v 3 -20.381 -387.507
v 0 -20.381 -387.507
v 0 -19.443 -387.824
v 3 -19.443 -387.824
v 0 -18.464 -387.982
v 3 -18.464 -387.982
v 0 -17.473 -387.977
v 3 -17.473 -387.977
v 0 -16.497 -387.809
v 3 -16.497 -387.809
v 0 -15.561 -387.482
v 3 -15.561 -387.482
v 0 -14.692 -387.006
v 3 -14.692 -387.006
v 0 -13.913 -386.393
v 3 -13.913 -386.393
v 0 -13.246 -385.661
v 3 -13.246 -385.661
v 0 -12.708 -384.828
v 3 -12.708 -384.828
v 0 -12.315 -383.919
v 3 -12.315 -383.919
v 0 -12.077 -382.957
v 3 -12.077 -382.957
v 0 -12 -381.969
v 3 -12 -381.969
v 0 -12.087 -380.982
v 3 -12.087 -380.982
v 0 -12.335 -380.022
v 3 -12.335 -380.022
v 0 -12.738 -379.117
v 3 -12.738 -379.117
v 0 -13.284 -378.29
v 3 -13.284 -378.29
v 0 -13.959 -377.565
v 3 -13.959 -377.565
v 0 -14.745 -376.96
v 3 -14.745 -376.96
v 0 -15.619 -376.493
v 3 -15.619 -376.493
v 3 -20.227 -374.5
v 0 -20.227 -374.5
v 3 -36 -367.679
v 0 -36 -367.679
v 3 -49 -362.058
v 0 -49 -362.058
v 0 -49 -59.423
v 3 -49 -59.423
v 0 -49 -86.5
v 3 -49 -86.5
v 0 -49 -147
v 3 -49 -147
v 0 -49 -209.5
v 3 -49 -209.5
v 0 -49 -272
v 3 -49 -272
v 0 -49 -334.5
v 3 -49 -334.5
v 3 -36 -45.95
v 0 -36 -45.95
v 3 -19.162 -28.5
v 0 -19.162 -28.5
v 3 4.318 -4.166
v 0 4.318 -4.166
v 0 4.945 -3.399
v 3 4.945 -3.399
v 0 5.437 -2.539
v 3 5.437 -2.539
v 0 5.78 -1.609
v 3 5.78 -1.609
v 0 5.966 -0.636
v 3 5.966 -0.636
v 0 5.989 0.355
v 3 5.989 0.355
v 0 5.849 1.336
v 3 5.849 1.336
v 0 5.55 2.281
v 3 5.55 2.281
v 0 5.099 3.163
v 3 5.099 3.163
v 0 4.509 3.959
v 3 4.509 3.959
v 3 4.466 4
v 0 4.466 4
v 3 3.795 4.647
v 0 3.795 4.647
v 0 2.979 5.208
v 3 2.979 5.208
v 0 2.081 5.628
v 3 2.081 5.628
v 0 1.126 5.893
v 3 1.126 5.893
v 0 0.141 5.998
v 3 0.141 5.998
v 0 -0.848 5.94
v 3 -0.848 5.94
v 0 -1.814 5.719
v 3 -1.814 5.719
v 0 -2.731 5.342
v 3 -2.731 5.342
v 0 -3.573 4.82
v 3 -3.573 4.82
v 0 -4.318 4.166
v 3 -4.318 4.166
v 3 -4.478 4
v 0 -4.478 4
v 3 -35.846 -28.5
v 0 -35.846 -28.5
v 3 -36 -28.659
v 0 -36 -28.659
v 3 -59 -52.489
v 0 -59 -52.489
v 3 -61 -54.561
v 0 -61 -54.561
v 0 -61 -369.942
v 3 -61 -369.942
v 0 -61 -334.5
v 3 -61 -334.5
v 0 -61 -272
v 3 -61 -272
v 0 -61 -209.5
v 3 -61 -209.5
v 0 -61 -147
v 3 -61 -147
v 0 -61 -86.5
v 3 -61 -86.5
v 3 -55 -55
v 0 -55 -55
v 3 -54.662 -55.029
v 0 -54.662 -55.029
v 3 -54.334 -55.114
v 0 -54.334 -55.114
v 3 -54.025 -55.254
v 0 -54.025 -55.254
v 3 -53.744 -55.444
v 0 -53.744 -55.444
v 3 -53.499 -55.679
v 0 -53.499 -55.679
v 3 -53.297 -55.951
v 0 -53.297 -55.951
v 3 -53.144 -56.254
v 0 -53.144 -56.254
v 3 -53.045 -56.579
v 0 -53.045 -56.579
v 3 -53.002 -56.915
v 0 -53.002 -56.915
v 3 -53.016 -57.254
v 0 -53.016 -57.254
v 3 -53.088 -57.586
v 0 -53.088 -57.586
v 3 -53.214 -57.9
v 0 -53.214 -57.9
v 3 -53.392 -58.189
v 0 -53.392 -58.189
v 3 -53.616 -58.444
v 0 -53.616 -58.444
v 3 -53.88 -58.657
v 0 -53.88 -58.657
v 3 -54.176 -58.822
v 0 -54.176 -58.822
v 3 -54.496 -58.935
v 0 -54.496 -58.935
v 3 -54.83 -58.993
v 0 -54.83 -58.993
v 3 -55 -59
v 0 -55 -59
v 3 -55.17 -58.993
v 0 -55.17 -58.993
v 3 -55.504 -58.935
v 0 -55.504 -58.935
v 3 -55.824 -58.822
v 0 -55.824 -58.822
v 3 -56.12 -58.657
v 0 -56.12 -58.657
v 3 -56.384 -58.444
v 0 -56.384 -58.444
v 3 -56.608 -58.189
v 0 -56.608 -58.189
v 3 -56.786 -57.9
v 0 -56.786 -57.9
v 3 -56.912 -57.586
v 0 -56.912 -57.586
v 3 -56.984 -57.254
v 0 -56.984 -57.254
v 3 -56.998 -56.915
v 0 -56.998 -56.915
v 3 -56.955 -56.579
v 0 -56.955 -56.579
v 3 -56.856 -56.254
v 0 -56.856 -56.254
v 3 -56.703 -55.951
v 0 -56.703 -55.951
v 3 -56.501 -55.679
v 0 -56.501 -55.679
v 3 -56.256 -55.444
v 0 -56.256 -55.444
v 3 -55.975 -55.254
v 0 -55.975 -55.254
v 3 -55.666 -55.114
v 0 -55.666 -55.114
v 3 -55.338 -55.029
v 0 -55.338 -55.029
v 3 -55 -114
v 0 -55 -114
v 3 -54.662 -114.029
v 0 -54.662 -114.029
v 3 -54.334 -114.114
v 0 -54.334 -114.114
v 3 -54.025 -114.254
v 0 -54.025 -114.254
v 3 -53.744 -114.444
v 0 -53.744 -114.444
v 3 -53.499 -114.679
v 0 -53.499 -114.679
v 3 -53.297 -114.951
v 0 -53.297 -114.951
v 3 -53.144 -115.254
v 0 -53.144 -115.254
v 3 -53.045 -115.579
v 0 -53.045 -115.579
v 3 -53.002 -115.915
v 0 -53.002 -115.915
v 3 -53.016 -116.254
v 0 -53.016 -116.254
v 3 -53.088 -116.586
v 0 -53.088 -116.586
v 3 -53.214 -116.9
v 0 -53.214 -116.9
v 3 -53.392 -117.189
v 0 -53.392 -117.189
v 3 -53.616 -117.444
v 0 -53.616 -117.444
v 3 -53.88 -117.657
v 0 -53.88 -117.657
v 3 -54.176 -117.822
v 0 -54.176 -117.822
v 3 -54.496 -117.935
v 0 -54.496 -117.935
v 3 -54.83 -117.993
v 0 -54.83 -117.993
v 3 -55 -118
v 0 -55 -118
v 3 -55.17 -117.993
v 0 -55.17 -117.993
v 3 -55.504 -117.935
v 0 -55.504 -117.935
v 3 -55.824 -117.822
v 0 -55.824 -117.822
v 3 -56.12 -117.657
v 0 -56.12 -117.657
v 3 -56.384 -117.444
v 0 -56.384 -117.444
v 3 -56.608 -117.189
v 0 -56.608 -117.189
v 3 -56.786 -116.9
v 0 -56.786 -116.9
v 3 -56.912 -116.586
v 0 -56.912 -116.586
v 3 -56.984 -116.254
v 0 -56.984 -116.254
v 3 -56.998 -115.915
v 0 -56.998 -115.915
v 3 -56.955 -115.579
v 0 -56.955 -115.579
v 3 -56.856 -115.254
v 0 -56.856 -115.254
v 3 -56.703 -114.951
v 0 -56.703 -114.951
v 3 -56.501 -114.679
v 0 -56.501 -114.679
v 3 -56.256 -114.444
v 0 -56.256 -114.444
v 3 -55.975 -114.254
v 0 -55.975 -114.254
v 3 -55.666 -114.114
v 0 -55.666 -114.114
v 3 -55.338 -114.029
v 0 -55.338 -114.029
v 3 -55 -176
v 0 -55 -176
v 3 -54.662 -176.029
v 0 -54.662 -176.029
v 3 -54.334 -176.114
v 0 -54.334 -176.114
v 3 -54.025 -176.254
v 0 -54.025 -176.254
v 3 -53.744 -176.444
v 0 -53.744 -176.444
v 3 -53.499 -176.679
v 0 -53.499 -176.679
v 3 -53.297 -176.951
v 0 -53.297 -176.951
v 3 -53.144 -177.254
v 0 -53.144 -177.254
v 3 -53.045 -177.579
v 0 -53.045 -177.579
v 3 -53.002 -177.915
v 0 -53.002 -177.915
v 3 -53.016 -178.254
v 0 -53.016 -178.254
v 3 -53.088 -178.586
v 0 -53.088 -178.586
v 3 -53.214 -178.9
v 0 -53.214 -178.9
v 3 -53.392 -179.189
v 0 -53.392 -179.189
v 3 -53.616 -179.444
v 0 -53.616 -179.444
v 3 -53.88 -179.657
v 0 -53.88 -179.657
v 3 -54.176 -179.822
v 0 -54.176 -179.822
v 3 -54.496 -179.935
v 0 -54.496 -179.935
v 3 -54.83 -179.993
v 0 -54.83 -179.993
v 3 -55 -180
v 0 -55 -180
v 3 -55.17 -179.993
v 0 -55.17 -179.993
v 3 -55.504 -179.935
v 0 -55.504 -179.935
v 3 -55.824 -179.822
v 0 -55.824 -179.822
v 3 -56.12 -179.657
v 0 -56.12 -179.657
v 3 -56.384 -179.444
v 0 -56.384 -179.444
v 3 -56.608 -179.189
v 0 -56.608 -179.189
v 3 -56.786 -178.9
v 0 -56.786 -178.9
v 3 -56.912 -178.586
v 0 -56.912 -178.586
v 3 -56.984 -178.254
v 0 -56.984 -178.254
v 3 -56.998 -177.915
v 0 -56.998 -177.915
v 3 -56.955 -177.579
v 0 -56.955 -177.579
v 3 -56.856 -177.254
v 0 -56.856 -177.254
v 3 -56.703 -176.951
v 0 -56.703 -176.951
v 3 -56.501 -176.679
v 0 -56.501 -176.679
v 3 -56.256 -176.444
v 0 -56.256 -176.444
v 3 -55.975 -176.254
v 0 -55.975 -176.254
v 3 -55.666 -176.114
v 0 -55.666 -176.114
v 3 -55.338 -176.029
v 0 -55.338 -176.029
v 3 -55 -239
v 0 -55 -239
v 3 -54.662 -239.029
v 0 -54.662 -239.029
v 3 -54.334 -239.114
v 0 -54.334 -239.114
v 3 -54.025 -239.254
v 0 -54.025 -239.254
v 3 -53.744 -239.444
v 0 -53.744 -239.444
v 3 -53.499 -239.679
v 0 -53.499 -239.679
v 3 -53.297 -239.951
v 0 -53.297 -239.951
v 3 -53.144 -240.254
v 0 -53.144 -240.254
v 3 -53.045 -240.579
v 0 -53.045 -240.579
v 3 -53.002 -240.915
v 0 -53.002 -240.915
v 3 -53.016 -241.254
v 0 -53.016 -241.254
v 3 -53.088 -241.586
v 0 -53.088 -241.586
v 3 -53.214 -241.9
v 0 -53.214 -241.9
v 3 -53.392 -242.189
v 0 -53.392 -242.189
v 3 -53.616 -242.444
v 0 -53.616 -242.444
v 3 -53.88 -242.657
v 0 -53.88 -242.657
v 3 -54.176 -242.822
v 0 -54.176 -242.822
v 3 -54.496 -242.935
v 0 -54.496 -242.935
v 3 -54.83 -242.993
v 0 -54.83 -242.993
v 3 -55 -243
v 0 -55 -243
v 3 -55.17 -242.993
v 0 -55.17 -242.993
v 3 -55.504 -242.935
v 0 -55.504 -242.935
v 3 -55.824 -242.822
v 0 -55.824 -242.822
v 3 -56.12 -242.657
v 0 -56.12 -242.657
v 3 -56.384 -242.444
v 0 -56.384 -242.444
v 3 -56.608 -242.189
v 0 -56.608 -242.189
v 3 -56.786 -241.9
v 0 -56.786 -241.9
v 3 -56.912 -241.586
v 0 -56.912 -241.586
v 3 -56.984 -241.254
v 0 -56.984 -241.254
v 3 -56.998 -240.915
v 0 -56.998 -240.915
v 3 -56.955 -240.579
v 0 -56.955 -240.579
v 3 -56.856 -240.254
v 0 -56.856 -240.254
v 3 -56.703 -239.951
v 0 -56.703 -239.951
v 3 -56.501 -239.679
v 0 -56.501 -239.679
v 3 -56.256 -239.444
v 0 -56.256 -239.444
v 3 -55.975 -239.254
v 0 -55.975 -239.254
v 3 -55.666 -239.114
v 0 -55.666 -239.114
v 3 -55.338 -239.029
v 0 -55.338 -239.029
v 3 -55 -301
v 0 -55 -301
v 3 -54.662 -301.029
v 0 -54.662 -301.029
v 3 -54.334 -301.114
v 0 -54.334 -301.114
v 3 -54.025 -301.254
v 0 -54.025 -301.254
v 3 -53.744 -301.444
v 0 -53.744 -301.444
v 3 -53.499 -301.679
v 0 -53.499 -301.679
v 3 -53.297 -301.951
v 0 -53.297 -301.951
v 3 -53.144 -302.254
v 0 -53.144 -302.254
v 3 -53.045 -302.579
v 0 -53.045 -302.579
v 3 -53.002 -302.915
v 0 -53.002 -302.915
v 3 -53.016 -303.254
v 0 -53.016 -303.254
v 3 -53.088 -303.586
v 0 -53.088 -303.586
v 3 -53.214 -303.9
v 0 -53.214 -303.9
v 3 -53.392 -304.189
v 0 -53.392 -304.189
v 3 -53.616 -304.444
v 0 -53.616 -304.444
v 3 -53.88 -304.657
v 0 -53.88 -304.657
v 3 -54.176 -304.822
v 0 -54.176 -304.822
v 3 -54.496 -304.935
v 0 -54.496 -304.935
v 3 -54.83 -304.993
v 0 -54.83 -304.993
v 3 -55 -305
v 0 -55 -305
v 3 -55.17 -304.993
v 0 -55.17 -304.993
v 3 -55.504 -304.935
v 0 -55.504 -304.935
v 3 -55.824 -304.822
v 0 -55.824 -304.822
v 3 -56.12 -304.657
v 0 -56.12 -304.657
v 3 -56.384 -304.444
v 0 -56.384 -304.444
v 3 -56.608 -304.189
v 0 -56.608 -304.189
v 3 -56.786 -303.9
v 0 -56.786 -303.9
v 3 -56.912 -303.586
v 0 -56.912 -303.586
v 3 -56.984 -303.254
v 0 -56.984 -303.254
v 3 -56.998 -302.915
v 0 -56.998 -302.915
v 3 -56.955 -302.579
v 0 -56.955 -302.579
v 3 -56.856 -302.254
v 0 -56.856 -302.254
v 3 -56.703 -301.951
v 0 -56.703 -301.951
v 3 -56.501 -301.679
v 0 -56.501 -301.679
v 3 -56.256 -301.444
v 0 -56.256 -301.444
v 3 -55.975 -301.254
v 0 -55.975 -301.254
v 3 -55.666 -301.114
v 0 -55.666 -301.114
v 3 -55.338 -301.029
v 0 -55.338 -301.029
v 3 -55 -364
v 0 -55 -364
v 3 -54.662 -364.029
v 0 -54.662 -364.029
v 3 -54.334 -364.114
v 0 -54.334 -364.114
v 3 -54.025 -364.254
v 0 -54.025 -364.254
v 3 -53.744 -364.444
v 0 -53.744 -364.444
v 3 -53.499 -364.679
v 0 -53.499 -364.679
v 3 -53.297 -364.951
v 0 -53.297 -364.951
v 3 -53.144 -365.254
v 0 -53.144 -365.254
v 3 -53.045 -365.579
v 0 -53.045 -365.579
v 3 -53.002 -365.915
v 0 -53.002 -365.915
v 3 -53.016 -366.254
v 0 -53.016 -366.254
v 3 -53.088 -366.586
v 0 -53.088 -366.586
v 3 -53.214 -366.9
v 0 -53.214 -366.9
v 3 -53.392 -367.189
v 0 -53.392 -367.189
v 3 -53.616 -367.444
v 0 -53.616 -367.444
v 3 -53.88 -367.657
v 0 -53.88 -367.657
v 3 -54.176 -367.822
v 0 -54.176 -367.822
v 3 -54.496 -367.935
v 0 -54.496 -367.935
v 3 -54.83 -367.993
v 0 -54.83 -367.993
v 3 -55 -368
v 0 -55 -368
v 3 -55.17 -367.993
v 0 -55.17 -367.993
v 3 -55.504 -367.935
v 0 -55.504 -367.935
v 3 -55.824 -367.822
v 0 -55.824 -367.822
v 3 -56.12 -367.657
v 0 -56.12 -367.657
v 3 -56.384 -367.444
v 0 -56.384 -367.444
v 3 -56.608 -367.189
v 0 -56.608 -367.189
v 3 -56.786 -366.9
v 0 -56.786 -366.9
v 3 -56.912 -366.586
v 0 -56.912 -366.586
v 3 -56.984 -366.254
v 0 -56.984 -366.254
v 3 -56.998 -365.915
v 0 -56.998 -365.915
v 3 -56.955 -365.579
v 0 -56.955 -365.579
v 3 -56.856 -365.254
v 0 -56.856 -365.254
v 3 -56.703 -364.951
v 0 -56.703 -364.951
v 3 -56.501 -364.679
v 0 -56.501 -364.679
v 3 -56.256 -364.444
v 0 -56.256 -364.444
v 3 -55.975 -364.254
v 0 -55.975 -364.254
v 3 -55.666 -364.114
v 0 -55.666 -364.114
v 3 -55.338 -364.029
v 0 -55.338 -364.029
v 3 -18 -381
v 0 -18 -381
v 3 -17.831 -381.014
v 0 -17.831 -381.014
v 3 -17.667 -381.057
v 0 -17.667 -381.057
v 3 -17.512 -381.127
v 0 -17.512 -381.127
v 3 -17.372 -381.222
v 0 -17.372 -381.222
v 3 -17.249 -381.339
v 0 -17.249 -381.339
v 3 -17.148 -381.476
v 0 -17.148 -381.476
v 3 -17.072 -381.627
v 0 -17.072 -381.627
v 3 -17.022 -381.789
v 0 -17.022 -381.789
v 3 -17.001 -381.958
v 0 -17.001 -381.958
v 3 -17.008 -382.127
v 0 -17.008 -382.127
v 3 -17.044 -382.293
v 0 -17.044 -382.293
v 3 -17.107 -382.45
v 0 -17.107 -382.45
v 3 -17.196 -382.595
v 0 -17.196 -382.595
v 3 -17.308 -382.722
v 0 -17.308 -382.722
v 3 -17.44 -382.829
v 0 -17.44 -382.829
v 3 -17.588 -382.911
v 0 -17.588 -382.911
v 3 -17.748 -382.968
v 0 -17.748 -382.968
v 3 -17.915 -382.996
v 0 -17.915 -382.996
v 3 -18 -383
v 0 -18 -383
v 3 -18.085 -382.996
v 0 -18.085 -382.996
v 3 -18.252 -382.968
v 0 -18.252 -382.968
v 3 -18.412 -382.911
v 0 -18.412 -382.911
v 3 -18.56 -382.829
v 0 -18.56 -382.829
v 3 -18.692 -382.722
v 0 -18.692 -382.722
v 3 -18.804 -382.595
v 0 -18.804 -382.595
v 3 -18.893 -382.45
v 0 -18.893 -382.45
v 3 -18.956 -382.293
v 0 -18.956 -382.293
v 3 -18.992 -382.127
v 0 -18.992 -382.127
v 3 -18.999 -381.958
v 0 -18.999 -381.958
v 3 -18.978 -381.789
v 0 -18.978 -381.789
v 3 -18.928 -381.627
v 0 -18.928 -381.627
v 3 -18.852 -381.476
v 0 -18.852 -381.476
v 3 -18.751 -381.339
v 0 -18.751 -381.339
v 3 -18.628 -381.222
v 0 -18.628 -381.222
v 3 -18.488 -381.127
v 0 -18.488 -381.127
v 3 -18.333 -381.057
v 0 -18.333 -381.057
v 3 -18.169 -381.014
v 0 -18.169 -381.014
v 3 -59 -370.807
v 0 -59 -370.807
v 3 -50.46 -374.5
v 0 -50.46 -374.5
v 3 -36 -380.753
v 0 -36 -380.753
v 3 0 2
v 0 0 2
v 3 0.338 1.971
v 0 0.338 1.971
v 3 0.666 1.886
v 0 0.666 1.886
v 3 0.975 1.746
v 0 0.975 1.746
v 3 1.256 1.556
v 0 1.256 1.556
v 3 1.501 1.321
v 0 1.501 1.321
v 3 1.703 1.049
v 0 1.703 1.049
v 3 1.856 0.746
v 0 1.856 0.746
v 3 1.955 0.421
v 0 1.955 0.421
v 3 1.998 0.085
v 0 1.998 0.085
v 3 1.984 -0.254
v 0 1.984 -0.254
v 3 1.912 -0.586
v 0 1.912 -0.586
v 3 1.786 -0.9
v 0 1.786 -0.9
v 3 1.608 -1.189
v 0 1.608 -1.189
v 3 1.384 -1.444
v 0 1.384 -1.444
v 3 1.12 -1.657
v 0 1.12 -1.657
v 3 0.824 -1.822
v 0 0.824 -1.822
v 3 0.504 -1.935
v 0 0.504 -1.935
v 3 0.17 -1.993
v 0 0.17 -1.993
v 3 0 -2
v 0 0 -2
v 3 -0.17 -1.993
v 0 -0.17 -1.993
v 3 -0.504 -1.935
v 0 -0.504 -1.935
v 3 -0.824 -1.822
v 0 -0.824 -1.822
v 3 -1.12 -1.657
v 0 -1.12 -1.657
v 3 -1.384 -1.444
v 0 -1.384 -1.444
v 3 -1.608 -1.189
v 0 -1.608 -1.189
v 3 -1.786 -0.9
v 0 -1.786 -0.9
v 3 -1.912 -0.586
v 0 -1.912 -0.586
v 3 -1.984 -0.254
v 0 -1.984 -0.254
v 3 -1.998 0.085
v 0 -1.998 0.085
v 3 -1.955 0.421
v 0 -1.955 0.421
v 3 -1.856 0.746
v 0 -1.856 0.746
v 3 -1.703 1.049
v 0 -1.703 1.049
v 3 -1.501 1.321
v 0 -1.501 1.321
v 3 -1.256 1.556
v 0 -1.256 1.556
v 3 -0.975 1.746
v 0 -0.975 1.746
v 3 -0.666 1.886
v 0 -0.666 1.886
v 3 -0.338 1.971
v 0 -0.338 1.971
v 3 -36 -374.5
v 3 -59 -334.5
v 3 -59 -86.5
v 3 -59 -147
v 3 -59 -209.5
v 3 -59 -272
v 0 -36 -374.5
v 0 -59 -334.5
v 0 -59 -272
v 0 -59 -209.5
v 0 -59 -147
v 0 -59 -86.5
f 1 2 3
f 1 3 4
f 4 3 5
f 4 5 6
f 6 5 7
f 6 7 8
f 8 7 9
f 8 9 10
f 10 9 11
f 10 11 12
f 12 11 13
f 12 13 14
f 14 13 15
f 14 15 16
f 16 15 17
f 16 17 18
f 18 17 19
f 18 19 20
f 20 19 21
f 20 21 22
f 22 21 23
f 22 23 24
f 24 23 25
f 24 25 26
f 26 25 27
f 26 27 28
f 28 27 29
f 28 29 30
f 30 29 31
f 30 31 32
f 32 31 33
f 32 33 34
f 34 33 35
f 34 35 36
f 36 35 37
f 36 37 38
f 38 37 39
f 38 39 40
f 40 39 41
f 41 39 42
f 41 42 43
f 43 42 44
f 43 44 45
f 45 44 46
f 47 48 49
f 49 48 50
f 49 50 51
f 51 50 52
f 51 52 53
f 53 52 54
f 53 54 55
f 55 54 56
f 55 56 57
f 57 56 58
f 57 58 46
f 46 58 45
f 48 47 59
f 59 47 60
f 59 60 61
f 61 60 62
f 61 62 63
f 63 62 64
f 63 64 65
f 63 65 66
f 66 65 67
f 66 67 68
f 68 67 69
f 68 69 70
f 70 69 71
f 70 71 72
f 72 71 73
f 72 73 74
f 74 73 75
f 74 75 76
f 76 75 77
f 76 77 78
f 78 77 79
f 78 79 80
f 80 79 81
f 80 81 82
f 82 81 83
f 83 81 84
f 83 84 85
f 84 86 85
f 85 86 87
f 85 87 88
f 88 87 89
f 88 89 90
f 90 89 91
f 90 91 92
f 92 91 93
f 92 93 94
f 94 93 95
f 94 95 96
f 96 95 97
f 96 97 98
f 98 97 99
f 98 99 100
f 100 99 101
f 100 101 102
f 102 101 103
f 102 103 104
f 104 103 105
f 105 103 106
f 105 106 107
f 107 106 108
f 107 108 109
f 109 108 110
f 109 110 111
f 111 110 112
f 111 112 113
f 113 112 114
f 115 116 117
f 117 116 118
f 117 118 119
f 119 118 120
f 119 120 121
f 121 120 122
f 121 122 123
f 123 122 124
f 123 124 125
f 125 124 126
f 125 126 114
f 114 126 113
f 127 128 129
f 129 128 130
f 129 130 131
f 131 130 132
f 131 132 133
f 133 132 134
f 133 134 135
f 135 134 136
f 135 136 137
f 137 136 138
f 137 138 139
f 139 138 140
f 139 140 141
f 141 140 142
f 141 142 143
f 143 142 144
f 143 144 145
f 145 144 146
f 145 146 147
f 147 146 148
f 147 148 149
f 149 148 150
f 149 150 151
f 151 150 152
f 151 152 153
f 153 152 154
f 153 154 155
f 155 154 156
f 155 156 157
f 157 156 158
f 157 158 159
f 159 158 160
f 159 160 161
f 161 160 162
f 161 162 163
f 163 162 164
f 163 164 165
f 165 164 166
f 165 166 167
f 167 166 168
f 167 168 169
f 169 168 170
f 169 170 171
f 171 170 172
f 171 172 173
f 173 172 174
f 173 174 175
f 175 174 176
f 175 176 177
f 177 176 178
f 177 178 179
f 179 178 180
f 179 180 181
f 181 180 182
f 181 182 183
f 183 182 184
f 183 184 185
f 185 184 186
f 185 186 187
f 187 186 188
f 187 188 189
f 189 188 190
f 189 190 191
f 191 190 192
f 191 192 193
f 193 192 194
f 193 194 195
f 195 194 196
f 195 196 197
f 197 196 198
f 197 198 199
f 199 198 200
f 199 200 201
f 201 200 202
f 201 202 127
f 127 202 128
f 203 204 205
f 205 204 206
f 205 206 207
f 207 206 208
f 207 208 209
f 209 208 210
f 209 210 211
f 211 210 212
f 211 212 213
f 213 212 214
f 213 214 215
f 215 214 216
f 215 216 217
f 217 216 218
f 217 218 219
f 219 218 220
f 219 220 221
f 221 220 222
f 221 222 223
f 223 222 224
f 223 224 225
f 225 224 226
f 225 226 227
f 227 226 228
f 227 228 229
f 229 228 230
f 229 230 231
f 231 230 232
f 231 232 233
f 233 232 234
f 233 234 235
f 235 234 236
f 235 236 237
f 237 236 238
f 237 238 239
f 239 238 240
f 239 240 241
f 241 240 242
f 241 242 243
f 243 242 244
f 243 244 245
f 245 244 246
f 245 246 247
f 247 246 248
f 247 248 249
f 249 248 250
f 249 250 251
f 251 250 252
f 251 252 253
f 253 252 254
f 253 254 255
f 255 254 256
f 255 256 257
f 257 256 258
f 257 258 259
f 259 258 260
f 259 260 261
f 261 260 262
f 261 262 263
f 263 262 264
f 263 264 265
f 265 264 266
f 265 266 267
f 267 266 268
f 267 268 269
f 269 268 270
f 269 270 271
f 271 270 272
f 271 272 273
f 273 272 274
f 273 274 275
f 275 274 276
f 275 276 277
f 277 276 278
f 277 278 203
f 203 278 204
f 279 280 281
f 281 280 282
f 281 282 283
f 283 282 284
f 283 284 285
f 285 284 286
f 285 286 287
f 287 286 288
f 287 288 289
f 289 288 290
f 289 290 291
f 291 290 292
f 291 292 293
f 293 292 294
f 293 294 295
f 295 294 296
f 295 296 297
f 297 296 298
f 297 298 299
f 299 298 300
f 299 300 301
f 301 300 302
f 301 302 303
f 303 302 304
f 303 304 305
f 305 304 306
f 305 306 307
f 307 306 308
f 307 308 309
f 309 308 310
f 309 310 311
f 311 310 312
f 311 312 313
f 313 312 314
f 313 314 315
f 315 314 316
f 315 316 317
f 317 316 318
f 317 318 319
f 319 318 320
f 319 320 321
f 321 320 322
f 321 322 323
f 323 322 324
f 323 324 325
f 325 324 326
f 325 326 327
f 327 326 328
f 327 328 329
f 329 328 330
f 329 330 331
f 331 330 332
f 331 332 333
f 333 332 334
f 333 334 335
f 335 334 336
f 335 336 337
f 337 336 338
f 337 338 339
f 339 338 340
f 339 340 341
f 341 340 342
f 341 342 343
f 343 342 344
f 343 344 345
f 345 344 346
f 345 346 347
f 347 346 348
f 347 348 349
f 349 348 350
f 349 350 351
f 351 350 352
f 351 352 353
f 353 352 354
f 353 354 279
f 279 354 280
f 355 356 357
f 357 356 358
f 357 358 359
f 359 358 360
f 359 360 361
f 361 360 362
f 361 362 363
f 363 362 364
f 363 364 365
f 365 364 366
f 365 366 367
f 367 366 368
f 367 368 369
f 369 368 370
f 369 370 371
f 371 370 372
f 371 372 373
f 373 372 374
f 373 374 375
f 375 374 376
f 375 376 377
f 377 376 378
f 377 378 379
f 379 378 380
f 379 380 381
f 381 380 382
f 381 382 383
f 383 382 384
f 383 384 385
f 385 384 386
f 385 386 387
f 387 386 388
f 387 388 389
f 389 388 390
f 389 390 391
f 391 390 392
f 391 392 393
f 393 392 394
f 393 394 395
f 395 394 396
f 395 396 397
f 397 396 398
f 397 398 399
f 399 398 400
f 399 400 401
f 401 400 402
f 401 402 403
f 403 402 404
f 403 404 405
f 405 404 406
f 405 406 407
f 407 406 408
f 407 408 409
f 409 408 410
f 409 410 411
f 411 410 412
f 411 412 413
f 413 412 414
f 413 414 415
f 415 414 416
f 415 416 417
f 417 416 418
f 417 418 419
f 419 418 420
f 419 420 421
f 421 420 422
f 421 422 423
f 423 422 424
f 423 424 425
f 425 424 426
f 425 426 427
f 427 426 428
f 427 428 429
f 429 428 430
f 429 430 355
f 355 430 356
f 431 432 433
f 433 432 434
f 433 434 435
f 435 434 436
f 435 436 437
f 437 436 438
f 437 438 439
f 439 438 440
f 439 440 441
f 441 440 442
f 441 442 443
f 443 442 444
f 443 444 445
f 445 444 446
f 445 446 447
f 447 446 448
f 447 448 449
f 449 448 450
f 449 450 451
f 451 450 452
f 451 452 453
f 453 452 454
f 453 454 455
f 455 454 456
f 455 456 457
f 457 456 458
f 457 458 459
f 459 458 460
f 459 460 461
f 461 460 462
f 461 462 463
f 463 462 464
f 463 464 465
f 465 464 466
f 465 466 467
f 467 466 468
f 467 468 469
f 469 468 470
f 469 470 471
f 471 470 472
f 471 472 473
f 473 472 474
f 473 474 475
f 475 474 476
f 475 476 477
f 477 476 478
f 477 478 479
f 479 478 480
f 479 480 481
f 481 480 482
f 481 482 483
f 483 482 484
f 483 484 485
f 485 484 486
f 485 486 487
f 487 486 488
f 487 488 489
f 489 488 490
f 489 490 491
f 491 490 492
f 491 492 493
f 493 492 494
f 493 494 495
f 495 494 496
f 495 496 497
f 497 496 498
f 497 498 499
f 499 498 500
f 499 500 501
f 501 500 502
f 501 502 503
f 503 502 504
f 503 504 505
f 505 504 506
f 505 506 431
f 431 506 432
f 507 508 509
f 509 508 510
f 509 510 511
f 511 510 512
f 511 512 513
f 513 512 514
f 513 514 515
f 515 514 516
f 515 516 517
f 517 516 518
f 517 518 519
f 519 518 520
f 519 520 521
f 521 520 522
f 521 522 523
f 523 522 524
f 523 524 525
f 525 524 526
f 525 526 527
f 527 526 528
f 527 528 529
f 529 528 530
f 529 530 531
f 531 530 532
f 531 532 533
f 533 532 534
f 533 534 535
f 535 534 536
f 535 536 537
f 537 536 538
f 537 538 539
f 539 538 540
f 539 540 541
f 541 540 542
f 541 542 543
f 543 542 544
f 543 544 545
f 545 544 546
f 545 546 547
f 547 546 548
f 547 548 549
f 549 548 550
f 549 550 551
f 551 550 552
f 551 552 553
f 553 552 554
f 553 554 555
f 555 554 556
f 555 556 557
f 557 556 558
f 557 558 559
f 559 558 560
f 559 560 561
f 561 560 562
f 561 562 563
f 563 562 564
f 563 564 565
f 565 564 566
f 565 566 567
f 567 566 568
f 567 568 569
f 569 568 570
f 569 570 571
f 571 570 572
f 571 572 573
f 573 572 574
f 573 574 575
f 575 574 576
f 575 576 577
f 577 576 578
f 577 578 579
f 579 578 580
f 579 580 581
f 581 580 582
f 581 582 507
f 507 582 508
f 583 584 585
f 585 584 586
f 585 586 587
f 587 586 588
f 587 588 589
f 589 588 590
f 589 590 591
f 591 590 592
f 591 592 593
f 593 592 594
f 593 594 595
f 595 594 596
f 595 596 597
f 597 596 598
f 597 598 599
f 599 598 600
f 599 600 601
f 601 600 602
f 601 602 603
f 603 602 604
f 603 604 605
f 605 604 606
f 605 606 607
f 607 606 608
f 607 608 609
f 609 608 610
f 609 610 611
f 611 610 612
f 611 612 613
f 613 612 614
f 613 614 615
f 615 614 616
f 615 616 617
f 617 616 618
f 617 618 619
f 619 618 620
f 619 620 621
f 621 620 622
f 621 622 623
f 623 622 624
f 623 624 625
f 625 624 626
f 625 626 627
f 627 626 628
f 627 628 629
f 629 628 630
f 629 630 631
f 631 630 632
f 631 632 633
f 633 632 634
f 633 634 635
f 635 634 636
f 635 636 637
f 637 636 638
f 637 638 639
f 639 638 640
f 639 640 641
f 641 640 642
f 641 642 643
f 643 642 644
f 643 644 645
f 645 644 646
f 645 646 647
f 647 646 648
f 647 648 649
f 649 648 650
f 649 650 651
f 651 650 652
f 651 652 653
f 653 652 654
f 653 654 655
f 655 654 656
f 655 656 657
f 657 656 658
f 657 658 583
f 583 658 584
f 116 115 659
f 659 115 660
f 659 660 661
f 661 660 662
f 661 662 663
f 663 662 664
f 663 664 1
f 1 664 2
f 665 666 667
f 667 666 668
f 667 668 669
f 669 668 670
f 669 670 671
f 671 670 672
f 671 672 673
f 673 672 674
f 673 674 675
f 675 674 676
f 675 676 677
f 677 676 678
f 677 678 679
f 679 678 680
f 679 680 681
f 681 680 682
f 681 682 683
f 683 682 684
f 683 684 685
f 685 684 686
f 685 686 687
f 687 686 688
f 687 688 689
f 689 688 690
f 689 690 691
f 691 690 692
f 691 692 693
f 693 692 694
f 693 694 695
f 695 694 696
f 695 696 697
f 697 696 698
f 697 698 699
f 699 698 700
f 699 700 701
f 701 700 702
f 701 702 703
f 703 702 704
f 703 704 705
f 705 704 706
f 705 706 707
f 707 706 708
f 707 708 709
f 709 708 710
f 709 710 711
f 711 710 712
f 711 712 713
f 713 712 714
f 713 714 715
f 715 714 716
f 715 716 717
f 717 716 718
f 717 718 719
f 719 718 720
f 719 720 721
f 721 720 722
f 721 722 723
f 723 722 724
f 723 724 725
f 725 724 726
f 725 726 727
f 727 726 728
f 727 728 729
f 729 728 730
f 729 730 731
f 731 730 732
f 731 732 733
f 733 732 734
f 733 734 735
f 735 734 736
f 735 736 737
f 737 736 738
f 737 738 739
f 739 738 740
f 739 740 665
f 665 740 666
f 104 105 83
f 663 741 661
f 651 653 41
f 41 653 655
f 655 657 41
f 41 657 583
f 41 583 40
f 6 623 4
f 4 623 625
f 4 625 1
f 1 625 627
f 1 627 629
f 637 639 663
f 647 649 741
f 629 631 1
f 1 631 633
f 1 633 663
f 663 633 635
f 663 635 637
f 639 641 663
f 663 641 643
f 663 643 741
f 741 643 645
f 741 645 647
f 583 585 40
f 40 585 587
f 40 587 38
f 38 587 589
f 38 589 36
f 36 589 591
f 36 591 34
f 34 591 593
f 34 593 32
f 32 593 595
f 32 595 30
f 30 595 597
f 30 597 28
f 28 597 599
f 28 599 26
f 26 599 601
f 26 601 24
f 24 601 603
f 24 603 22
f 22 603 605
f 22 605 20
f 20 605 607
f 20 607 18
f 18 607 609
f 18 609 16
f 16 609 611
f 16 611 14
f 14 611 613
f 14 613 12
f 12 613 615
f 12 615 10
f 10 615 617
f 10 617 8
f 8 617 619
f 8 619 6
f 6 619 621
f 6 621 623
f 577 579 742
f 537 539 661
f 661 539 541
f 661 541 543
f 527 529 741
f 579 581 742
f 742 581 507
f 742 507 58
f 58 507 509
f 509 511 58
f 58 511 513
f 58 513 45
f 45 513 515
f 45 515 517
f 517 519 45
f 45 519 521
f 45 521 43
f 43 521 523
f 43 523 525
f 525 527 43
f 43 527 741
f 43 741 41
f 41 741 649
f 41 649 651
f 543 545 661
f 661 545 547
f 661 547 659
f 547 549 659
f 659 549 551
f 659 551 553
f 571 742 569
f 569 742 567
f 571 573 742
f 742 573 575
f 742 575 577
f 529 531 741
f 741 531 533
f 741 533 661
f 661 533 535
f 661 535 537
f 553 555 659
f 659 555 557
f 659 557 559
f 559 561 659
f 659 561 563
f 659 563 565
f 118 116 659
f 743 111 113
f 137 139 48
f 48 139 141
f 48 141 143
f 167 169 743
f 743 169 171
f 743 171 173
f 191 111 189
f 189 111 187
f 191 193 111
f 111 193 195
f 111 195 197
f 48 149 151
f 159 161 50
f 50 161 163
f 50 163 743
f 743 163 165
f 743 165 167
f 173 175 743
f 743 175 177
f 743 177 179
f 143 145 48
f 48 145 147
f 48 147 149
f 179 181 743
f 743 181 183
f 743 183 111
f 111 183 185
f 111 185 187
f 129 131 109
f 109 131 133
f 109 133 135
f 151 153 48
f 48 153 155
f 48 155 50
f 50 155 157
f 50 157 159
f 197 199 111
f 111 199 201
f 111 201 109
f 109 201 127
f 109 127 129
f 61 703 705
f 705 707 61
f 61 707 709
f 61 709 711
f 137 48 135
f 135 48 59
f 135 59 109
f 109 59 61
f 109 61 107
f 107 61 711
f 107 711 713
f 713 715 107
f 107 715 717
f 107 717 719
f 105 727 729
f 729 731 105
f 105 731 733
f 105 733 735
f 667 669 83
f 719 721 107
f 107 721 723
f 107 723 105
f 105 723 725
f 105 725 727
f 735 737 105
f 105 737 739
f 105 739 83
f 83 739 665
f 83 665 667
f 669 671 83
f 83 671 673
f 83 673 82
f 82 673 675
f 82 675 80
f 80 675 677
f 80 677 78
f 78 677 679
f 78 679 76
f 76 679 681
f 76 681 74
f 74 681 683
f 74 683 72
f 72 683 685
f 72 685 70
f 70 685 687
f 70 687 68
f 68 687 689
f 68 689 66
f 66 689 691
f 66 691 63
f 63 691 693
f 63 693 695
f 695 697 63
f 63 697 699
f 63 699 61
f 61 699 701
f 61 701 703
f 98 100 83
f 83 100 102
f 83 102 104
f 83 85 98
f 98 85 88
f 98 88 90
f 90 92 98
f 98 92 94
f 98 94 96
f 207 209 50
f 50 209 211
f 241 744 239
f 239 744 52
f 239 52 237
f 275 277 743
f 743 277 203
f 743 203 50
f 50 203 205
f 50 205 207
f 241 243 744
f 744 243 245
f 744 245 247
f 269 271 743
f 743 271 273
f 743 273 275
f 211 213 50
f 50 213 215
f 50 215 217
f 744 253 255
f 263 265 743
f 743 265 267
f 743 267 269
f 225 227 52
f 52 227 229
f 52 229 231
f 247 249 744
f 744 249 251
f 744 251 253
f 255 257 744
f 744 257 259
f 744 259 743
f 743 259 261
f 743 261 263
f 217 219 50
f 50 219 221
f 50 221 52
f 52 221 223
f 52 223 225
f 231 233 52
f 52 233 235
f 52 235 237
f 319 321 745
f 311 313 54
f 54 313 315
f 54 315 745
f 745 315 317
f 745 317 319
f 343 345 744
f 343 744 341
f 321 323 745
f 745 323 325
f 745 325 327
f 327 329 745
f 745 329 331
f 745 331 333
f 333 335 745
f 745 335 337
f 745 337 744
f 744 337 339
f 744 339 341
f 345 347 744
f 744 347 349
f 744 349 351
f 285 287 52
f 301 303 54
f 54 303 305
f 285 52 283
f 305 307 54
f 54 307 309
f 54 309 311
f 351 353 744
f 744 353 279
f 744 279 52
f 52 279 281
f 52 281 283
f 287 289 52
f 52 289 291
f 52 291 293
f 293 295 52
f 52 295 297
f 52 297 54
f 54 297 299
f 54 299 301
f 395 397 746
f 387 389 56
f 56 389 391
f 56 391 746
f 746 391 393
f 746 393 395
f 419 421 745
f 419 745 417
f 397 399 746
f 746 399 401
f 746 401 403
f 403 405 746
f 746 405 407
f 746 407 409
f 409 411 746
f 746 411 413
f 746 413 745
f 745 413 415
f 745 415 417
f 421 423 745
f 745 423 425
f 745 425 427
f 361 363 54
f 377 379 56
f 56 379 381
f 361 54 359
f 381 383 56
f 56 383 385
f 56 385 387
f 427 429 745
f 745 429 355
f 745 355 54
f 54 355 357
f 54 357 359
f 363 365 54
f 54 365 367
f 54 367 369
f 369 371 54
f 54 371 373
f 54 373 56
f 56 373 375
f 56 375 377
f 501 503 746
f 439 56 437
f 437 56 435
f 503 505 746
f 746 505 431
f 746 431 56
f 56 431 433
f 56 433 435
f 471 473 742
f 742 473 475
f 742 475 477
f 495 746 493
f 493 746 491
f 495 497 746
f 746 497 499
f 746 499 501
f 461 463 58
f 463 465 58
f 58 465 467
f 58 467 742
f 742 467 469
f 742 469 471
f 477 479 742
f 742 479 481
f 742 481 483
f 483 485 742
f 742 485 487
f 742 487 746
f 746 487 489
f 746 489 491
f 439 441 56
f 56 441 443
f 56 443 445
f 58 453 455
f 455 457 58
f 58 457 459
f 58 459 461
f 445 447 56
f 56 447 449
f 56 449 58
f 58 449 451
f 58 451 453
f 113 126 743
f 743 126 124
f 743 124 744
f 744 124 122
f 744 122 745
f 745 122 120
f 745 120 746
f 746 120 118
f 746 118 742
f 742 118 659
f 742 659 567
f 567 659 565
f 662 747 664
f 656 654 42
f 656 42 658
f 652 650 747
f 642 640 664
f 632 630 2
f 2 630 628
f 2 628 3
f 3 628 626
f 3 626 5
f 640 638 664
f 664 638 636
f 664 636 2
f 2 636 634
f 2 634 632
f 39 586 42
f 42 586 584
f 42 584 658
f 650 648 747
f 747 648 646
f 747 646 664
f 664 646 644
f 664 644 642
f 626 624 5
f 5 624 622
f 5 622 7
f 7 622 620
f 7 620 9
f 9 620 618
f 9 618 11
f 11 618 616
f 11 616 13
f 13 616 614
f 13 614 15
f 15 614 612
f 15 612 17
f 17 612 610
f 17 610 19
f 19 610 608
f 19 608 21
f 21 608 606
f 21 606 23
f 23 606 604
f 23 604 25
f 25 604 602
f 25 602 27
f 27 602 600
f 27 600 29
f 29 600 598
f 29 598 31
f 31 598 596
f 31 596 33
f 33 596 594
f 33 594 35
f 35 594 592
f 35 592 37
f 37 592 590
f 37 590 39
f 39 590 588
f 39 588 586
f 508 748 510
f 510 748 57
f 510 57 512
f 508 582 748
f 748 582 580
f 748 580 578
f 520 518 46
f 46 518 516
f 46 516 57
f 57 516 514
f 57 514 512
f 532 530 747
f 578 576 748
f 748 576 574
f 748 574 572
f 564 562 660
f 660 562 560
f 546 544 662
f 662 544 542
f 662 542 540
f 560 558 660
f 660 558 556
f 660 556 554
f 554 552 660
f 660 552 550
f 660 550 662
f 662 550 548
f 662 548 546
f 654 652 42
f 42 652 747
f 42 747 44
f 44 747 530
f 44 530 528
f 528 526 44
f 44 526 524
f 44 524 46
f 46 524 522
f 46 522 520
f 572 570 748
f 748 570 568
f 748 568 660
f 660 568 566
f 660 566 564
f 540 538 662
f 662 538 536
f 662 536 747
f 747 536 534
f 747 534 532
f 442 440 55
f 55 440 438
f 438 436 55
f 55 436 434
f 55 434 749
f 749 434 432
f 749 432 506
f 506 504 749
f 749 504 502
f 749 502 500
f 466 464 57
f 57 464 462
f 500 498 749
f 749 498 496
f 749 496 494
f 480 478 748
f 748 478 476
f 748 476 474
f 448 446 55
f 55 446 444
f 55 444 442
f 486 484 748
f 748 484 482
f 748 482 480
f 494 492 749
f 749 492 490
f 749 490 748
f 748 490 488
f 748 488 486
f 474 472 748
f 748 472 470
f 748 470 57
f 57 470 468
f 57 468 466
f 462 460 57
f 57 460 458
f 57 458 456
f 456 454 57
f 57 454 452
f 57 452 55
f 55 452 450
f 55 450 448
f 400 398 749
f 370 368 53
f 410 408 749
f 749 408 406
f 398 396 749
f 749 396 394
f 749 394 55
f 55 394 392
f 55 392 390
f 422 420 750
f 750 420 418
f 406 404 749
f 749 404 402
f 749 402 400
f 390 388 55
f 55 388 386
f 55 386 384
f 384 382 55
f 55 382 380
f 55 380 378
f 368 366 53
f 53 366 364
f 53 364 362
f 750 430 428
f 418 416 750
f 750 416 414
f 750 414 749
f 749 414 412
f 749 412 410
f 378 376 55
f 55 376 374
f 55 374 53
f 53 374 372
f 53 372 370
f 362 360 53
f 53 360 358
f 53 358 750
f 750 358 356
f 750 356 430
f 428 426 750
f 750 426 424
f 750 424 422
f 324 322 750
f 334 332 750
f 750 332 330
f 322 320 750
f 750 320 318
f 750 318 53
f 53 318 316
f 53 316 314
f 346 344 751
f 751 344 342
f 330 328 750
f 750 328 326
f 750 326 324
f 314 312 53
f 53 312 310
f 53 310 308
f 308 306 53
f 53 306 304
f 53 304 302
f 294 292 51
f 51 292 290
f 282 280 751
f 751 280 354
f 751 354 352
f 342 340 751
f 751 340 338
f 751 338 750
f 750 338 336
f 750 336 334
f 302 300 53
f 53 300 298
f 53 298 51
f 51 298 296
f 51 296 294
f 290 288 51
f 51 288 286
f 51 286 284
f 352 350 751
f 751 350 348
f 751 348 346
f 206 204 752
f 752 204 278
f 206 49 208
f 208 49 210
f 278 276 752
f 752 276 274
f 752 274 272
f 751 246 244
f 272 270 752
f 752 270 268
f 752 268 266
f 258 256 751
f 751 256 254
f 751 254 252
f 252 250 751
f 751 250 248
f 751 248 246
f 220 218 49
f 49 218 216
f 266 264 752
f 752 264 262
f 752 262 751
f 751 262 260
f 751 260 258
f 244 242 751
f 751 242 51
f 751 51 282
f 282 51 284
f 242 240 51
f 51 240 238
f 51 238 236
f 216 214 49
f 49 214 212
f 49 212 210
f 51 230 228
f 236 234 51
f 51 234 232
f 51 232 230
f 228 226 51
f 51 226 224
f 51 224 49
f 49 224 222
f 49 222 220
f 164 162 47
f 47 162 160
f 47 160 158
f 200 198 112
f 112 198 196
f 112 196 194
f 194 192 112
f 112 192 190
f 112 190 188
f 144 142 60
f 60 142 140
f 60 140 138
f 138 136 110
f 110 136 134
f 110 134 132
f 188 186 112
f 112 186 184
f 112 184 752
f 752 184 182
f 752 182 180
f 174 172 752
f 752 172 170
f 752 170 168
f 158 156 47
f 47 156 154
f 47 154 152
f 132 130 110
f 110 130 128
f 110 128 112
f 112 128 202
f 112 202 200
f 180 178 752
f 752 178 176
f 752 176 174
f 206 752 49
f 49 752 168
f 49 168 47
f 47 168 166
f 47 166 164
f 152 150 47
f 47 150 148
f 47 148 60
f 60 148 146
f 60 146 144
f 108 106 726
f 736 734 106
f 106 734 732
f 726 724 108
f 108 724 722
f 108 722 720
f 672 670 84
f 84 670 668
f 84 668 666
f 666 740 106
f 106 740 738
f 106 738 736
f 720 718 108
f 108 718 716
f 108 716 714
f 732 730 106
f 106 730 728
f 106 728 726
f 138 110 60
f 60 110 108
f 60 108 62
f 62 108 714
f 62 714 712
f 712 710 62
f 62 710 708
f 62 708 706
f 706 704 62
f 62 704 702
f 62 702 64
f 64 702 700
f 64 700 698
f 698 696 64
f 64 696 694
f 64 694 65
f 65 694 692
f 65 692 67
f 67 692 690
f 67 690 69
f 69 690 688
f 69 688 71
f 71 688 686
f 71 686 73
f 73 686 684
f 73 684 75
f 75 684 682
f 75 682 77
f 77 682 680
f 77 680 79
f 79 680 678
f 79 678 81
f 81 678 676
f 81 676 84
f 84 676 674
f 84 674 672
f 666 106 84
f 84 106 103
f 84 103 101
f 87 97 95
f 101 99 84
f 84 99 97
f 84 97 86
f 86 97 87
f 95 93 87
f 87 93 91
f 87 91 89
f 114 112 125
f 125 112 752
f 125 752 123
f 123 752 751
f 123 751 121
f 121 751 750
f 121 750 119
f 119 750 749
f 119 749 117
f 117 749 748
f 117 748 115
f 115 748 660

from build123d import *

# Parameters (mm, degrees)
SKETCH1_R           = 1
SKETCH1_R_2         = 2
BOSS_EXTRUDE1_DEPTH = 3


with BuildPart() as part:
    # Sketch1 → Boss-Extrude1 (new body)
    with BuildSketch(Plane(origin=(0, 0, 0), x_dir=(0, 0, -1), z_dir=(1, 0, 0))):
        with BuildLine():
            ThreePointArc((376.492857784, -15.618533096), (384.381466904, -12.492857784), (387.507142216, -20.381466904))
            Line((387.507142216, -20.381466904), (369.942371147, -61))
            Line((369.942371147, -61), (366, -61))
            Line((366, -61), (54.561190838, -61))
            Line((54.561190838, -61), (-4.166215043, -4.317713772))
            ThreePointArc((-4.166215043, -4.317713772), (-4.317713772, 4.166215043), (4.166215043, 4.317713772))
            Line((4.166215043, 4.317713772), (59.42275477, -49))
            Line((59.42275477, -49), (362.057628853, -49))
            Line((362.057628853, -49), (376.492857784, -15.618533096))
        make_face()
        with Locations((382, -18)):
            Circle(SKETCH1_R, mode=Mode.SUBTRACT)
        with Locations((366, -55)):
            Circle(SKETCH1_R_2, mode=Mode.SUBTRACT)
        with Locations((303, -55)):
            Circle(SKETCH1_R_2, mode=Mode.SUBTRACT)
        with Locations((241, -55)):
            Circle(SKETCH1_R_2, mode=Mode.SUBTRACT)
        with Locations((178, -55)):
            Circle(SKETCH1_R_2, mode=Mode.SUBTRACT)
        with Locations((116, -55)):
            Circle(SKETCH1_R_2, mode=Mode.SUBTRACT)
        with Locations((57, -55)):
            Circle(SKETCH1_R_2, mode=Mode.SUBTRACT)
        Circle(SKETCH1_R_2, mode=Mode.SUBTRACT)
    extrude(amount=BOSS_EXTRUDE1_DEPTH)


solid = part.part
